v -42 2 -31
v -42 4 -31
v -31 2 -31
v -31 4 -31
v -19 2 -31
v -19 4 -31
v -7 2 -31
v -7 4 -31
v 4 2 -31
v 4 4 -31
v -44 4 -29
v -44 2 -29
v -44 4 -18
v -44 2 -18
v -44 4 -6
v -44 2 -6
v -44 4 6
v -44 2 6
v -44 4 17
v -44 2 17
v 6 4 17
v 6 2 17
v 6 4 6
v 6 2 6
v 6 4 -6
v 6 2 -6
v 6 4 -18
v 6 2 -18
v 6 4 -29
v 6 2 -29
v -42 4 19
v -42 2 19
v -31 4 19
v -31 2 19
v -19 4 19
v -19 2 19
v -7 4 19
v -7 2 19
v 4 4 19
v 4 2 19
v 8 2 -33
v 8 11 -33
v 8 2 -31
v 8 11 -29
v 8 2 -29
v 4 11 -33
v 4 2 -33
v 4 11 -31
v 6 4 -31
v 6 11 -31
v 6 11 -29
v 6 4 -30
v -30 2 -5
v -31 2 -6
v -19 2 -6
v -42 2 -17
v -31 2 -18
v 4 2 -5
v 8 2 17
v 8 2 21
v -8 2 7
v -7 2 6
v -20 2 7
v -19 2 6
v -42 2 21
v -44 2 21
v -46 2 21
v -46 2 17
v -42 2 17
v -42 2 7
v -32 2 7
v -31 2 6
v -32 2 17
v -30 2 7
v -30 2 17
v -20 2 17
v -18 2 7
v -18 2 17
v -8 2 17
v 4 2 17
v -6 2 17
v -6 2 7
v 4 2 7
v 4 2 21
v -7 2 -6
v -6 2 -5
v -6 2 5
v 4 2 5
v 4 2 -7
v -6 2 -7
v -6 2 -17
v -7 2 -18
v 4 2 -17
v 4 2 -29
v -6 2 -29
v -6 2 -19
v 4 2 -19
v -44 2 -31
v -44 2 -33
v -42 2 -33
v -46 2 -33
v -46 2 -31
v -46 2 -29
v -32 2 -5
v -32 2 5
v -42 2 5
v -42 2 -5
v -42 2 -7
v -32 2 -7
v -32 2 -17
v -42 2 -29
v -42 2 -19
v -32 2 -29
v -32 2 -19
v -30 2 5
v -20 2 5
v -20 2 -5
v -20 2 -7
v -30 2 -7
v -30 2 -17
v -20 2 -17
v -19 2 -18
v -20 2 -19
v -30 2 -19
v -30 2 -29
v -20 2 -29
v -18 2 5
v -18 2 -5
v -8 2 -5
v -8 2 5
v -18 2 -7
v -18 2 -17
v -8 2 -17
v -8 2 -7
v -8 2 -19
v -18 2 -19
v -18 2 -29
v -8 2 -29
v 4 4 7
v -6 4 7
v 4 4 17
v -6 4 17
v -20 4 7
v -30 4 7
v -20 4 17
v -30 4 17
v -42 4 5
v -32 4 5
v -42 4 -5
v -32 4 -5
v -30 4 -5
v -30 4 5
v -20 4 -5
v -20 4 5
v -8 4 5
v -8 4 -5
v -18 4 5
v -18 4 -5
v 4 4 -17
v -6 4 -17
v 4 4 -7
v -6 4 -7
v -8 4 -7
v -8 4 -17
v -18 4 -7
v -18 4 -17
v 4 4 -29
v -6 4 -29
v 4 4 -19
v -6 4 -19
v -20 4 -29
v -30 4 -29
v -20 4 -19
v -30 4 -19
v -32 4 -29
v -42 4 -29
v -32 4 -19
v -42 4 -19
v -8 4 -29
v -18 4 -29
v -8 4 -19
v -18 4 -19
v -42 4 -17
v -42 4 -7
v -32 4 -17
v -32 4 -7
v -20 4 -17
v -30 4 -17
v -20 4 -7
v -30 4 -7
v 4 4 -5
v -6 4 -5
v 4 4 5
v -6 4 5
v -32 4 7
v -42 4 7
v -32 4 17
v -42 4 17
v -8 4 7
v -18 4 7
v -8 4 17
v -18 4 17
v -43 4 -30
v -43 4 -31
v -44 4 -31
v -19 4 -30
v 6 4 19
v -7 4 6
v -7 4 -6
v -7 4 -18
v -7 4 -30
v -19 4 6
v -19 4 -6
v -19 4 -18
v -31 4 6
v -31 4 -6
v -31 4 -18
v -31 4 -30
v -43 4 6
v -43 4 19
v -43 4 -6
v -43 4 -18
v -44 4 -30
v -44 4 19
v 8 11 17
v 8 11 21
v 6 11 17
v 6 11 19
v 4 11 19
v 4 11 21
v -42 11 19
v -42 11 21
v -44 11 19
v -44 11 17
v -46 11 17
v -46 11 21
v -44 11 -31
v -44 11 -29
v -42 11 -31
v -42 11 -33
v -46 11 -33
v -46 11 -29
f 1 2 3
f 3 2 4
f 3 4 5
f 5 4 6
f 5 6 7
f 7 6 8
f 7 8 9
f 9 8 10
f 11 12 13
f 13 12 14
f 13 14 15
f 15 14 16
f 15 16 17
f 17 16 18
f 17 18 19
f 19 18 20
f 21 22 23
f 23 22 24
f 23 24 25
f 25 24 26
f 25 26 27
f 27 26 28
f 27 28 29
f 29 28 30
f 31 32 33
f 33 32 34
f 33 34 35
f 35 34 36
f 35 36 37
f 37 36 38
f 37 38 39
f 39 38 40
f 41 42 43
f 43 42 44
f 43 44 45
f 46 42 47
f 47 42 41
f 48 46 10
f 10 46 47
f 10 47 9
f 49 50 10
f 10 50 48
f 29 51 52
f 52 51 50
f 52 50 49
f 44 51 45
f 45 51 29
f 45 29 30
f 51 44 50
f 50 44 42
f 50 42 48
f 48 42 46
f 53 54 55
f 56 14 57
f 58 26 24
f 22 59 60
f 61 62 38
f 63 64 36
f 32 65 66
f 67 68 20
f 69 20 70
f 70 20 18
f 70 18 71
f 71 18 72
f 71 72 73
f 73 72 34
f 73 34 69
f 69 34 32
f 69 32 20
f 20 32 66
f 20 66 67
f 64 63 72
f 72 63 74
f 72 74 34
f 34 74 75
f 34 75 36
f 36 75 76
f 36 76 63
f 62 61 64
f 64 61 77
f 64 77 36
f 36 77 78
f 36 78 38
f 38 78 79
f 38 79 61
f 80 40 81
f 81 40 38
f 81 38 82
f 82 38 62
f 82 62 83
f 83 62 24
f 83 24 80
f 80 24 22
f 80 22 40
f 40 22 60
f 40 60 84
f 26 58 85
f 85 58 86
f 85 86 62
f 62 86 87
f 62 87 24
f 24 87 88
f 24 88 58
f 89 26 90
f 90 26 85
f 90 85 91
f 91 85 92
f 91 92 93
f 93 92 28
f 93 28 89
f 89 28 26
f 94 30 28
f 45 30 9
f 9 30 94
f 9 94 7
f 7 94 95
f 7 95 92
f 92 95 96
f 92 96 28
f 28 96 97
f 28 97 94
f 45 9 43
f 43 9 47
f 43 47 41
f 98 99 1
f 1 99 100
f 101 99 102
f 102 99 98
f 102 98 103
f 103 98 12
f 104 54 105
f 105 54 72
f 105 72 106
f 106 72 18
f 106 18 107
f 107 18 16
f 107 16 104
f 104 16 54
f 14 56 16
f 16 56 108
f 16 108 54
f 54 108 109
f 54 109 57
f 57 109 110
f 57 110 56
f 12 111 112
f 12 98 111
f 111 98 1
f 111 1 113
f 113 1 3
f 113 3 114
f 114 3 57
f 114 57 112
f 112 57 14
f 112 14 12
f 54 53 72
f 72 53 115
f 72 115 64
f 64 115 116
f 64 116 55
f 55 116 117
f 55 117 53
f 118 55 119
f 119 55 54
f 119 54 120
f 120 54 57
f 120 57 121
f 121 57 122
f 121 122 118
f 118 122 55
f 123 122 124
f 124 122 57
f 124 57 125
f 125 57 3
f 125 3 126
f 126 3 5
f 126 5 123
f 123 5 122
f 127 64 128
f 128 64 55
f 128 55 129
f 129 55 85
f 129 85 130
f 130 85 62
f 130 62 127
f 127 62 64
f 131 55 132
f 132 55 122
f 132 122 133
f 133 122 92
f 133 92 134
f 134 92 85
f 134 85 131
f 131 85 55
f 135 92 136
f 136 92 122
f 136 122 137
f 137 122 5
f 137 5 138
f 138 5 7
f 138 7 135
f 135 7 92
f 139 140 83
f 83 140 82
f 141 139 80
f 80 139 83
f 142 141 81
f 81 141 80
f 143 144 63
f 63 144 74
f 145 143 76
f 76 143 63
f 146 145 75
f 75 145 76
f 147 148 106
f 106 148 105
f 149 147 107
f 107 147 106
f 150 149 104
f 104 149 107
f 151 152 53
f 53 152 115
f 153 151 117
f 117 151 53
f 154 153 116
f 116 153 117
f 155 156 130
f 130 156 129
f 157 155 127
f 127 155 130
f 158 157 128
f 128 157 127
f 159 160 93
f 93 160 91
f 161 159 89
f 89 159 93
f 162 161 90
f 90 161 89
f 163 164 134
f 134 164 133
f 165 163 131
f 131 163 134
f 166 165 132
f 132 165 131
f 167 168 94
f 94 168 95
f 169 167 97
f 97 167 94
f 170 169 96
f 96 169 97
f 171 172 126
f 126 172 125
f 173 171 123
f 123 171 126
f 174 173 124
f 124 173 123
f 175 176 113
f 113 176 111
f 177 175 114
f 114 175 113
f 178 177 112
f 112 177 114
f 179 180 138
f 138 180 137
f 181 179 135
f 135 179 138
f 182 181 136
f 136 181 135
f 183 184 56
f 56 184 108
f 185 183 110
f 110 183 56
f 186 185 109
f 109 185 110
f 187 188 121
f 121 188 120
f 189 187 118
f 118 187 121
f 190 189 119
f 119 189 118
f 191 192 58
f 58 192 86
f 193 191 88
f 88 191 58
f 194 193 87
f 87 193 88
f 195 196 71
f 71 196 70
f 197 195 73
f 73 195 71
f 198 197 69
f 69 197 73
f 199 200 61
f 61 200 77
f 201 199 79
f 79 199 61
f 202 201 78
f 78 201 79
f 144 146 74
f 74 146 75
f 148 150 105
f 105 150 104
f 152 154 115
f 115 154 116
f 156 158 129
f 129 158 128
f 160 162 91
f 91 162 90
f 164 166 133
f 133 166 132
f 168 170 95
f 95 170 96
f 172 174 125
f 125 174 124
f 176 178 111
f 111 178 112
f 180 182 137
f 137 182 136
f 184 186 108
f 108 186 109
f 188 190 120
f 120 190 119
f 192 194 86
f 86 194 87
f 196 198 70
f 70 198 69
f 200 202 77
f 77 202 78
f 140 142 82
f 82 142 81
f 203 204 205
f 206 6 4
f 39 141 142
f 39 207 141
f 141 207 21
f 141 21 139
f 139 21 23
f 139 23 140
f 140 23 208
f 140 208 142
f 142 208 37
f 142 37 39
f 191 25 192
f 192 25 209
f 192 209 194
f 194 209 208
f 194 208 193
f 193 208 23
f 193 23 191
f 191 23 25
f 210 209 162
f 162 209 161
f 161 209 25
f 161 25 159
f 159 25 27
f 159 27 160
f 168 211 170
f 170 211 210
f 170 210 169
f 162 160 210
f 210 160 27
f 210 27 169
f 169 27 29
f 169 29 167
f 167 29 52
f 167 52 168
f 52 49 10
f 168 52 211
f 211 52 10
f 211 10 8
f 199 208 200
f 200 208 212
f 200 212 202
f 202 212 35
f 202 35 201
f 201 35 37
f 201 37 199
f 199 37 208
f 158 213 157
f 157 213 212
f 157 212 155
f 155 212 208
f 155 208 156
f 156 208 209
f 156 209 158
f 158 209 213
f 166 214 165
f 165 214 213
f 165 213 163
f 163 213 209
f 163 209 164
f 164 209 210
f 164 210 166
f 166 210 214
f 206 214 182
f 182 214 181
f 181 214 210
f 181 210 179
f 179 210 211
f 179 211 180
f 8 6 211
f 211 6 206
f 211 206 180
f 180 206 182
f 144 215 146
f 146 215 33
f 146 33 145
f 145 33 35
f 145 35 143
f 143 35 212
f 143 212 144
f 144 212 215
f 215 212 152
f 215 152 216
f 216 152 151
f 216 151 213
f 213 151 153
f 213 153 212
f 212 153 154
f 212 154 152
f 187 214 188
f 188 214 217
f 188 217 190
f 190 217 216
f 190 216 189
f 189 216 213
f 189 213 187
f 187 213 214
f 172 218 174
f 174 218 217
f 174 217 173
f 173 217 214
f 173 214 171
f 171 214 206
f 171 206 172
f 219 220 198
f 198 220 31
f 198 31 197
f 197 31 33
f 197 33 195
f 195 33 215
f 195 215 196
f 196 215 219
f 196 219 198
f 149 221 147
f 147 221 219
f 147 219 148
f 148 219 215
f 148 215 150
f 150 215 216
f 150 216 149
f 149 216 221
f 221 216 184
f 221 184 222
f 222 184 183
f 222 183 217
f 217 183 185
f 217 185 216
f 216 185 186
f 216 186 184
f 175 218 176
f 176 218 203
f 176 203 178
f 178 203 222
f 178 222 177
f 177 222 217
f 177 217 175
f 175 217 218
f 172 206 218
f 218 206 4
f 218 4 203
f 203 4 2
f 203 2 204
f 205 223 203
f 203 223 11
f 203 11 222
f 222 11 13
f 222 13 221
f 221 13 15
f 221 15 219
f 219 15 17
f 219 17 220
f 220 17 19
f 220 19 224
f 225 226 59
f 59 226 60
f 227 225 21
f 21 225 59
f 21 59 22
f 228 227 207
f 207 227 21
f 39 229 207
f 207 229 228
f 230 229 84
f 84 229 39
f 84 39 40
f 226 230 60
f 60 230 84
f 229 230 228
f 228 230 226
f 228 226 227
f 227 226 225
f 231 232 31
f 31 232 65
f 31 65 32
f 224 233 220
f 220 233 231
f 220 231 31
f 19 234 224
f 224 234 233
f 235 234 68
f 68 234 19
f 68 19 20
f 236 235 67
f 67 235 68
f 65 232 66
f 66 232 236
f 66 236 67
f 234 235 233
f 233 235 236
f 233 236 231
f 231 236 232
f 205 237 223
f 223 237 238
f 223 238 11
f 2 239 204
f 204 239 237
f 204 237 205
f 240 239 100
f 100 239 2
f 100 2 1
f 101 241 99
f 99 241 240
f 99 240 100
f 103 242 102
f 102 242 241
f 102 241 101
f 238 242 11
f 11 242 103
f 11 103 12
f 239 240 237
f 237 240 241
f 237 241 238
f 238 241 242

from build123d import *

# Parameters (mm, degrees)
BOSS_EXTRUDE16_START   = 2
BOSS_EXTRUDE16_DEPTH   = 9
BOSS_EXTRUDE16_2_DEPTH = 9
BOSS_EXTRUDE16_3_DEPTH = 9
BOSS_EXTRUDE16_4_DEPTH = 9
BOSS_EXTRUDE17_START   = 2
SKETCH1_28_W           = 10
SKETCH1_28_H           = 10
BOSS_EXTRUDE17_DEPTH   = 2


with BuildPart() as part:
    # Sketch1 → Boss-Extrude16 (new body)
    with BuildSketch(Plane(origin=(0, 0, 0), x_dir=(1, 0, 0), z_dir=(0, 1, 0)).offset(BOSS_EXTRUDE16_START)):
        Polygon((4, 33), (4, 31), (6, 31), (6, 29), (8, 29), (8, 33), align=None)
    extrude(amount=BOSS_EXTRUDE16_DEPTH)



with BuildPart() as body_2:
    # Sketch1 → Boss-Extrude16 2 (new body)
    with BuildSketch(Plane(origin=(0, 0, 0), x_dir=(1, 0, 0), z_dir=(0, 1, 0)).offset(BOSS_EXTRUDE16_START)):
        Polygon((8, -17), (6, -17), (6, -19), (4, -19), (4, -21), (8, -21), align=None)
    extrude(amount=BOSS_EXTRUDE16_2_DEPTH)


with BuildPart() as body_3:
    # Sketch1 → Boss-Extrude16 3 (new body)
    with BuildSketch(Plane(origin=(0, 0, 0), x_dir=(1, 0, 0), z_dir=(0, 1, 0)).offset(BOSS_EXTRUDE16_START)):
        Polygon((-44, -19), (-44, -17), (-46, -17), (-46, -21), (-42, -21), (-42, -19), align=None)
    extrude(amount=BOSS_EXTRUDE16_3_DEPTH)


with BuildPart() as body_4:
    # Sketch1 → Boss-Extrude16 4 (new body)
    with BuildSketch(Plane(origin=(0, 0, 0), x_dir=(1, 0, 0), z_dir=(0, 1, 0)).offset(BOSS_EXTRUDE16_START)):
        Polygon((-44, 31), (-42, 31), (-42, 33), (-46, 33), (-46, 29), (-44, 29), align=None)
    extrude(amount=BOSS_EXTRUDE16_4_DEPTH)


with BuildPart() as part_1:
    add(part.part)

    add(body_2.part)  # Boss-Extrude17 merges body 2

    add(body_3.part)  # Boss-Extrude17 merges body 3

    add(body_4.part)  # Boss-Extrude17 merges body 4
    # Sketch1<28> → Boss-Extrude17 (add)
    with BuildSketch(Plane(origin=(0, 0, 0), x_dir=(1, 0, 0), z_dir=(0, 1, 0)).offset(BOSS_EXTRUDE17_START)):
        Polygon((4, 31), (-42, 31), (-44, 31), (-44, 29), (-44, -17), (-44, -19), (-42, -19), (4, -19), (6, -19), (6, -17), (6, 29), (6, 31), align=None)
        with Locations((-37, -12)):
            Rectangle(SKETCH1_28_W, SKETCH1_28_H, mode=Mode.SUBTRACT)
        with Locations((-25, -12)):
            Rectangle(SKETCH1_28_W, SKETCH1_28_H, mode=Mode.SUBTRACT)
        with Locations((-37, 0)):
            Rectangle(SKETCH1_28_W, SKETCH1_28_H, mode=Mode.SUBTRACT)
        with Locations((-25, 0)):
            Rectangle(SKETCH1_28_W, SKETCH1_28_H, mode=Mode.SUBTRACT)
        with Locations((-13, -12)):
            Rectangle(SKETCH1_28_W, SKETCH1_28_H, mode=Mode.SUBTRACT)
        with Locations((-1, -12)):
            Rectangle(SKETCH1_28_W, SKETCH1_28_H, mode=Mode.SUBTRACT)
        with Locations((-13, 0)):
            Rectangle(SKETCH1_28_W, SKETCH1_28_H, mode=Mode.SUBTRACT)
        with Locations((-1, 0)):
            Rectangle(SKETCH1_28_W, SKETCH1_28_H, mode=Mode.SUBTRACT)
        with Locations((-37, 12)):
            Rectangle(SKETCH1_28_W, SKETCH1_28_H, mode=Mode.SUBTRACT)
        with Locations((-25, 12)):
            Rectangle(SKETCH1_28_W, SKETCH1_28_H, mode=Mode.SUBTRACT)
        with Locations((-37, 24)):
            Rectangle(SKETCH1_28_W, SKETCH1_28_H, mode=Mode.SUBTRACT)
        with Locations((-25, 24)):
            Rectangle(SKETCH1_28_W, SKETCH1_28_H, mode=Mode.SUBTRACT)
        with Locations((-13, 12)):
            Rectangle(SKETCH1_28_W, SKETCH1_28_H, mode=Mode.SUBTRACT)
        with Locations((-1, 12)):
            Rectangle(SKETCH1_28_W, SKETCH1_28_H, mode=Mode.SUBTRACT)
        with Locations((-13, 24)):
            Rectangle(SKETCH1_28_W, SKETCH1_28_H, mode=Mode.SUBTRACT)
        with Locations((-1, 24)):
            Rectangle(SKETCH1_28_W, SKETCH1_28_H, mode=Mode.SUBTRACT)
    extrude(amount=BOSS_EXTRUDE17_DEPTH)


solid = part_1.part
